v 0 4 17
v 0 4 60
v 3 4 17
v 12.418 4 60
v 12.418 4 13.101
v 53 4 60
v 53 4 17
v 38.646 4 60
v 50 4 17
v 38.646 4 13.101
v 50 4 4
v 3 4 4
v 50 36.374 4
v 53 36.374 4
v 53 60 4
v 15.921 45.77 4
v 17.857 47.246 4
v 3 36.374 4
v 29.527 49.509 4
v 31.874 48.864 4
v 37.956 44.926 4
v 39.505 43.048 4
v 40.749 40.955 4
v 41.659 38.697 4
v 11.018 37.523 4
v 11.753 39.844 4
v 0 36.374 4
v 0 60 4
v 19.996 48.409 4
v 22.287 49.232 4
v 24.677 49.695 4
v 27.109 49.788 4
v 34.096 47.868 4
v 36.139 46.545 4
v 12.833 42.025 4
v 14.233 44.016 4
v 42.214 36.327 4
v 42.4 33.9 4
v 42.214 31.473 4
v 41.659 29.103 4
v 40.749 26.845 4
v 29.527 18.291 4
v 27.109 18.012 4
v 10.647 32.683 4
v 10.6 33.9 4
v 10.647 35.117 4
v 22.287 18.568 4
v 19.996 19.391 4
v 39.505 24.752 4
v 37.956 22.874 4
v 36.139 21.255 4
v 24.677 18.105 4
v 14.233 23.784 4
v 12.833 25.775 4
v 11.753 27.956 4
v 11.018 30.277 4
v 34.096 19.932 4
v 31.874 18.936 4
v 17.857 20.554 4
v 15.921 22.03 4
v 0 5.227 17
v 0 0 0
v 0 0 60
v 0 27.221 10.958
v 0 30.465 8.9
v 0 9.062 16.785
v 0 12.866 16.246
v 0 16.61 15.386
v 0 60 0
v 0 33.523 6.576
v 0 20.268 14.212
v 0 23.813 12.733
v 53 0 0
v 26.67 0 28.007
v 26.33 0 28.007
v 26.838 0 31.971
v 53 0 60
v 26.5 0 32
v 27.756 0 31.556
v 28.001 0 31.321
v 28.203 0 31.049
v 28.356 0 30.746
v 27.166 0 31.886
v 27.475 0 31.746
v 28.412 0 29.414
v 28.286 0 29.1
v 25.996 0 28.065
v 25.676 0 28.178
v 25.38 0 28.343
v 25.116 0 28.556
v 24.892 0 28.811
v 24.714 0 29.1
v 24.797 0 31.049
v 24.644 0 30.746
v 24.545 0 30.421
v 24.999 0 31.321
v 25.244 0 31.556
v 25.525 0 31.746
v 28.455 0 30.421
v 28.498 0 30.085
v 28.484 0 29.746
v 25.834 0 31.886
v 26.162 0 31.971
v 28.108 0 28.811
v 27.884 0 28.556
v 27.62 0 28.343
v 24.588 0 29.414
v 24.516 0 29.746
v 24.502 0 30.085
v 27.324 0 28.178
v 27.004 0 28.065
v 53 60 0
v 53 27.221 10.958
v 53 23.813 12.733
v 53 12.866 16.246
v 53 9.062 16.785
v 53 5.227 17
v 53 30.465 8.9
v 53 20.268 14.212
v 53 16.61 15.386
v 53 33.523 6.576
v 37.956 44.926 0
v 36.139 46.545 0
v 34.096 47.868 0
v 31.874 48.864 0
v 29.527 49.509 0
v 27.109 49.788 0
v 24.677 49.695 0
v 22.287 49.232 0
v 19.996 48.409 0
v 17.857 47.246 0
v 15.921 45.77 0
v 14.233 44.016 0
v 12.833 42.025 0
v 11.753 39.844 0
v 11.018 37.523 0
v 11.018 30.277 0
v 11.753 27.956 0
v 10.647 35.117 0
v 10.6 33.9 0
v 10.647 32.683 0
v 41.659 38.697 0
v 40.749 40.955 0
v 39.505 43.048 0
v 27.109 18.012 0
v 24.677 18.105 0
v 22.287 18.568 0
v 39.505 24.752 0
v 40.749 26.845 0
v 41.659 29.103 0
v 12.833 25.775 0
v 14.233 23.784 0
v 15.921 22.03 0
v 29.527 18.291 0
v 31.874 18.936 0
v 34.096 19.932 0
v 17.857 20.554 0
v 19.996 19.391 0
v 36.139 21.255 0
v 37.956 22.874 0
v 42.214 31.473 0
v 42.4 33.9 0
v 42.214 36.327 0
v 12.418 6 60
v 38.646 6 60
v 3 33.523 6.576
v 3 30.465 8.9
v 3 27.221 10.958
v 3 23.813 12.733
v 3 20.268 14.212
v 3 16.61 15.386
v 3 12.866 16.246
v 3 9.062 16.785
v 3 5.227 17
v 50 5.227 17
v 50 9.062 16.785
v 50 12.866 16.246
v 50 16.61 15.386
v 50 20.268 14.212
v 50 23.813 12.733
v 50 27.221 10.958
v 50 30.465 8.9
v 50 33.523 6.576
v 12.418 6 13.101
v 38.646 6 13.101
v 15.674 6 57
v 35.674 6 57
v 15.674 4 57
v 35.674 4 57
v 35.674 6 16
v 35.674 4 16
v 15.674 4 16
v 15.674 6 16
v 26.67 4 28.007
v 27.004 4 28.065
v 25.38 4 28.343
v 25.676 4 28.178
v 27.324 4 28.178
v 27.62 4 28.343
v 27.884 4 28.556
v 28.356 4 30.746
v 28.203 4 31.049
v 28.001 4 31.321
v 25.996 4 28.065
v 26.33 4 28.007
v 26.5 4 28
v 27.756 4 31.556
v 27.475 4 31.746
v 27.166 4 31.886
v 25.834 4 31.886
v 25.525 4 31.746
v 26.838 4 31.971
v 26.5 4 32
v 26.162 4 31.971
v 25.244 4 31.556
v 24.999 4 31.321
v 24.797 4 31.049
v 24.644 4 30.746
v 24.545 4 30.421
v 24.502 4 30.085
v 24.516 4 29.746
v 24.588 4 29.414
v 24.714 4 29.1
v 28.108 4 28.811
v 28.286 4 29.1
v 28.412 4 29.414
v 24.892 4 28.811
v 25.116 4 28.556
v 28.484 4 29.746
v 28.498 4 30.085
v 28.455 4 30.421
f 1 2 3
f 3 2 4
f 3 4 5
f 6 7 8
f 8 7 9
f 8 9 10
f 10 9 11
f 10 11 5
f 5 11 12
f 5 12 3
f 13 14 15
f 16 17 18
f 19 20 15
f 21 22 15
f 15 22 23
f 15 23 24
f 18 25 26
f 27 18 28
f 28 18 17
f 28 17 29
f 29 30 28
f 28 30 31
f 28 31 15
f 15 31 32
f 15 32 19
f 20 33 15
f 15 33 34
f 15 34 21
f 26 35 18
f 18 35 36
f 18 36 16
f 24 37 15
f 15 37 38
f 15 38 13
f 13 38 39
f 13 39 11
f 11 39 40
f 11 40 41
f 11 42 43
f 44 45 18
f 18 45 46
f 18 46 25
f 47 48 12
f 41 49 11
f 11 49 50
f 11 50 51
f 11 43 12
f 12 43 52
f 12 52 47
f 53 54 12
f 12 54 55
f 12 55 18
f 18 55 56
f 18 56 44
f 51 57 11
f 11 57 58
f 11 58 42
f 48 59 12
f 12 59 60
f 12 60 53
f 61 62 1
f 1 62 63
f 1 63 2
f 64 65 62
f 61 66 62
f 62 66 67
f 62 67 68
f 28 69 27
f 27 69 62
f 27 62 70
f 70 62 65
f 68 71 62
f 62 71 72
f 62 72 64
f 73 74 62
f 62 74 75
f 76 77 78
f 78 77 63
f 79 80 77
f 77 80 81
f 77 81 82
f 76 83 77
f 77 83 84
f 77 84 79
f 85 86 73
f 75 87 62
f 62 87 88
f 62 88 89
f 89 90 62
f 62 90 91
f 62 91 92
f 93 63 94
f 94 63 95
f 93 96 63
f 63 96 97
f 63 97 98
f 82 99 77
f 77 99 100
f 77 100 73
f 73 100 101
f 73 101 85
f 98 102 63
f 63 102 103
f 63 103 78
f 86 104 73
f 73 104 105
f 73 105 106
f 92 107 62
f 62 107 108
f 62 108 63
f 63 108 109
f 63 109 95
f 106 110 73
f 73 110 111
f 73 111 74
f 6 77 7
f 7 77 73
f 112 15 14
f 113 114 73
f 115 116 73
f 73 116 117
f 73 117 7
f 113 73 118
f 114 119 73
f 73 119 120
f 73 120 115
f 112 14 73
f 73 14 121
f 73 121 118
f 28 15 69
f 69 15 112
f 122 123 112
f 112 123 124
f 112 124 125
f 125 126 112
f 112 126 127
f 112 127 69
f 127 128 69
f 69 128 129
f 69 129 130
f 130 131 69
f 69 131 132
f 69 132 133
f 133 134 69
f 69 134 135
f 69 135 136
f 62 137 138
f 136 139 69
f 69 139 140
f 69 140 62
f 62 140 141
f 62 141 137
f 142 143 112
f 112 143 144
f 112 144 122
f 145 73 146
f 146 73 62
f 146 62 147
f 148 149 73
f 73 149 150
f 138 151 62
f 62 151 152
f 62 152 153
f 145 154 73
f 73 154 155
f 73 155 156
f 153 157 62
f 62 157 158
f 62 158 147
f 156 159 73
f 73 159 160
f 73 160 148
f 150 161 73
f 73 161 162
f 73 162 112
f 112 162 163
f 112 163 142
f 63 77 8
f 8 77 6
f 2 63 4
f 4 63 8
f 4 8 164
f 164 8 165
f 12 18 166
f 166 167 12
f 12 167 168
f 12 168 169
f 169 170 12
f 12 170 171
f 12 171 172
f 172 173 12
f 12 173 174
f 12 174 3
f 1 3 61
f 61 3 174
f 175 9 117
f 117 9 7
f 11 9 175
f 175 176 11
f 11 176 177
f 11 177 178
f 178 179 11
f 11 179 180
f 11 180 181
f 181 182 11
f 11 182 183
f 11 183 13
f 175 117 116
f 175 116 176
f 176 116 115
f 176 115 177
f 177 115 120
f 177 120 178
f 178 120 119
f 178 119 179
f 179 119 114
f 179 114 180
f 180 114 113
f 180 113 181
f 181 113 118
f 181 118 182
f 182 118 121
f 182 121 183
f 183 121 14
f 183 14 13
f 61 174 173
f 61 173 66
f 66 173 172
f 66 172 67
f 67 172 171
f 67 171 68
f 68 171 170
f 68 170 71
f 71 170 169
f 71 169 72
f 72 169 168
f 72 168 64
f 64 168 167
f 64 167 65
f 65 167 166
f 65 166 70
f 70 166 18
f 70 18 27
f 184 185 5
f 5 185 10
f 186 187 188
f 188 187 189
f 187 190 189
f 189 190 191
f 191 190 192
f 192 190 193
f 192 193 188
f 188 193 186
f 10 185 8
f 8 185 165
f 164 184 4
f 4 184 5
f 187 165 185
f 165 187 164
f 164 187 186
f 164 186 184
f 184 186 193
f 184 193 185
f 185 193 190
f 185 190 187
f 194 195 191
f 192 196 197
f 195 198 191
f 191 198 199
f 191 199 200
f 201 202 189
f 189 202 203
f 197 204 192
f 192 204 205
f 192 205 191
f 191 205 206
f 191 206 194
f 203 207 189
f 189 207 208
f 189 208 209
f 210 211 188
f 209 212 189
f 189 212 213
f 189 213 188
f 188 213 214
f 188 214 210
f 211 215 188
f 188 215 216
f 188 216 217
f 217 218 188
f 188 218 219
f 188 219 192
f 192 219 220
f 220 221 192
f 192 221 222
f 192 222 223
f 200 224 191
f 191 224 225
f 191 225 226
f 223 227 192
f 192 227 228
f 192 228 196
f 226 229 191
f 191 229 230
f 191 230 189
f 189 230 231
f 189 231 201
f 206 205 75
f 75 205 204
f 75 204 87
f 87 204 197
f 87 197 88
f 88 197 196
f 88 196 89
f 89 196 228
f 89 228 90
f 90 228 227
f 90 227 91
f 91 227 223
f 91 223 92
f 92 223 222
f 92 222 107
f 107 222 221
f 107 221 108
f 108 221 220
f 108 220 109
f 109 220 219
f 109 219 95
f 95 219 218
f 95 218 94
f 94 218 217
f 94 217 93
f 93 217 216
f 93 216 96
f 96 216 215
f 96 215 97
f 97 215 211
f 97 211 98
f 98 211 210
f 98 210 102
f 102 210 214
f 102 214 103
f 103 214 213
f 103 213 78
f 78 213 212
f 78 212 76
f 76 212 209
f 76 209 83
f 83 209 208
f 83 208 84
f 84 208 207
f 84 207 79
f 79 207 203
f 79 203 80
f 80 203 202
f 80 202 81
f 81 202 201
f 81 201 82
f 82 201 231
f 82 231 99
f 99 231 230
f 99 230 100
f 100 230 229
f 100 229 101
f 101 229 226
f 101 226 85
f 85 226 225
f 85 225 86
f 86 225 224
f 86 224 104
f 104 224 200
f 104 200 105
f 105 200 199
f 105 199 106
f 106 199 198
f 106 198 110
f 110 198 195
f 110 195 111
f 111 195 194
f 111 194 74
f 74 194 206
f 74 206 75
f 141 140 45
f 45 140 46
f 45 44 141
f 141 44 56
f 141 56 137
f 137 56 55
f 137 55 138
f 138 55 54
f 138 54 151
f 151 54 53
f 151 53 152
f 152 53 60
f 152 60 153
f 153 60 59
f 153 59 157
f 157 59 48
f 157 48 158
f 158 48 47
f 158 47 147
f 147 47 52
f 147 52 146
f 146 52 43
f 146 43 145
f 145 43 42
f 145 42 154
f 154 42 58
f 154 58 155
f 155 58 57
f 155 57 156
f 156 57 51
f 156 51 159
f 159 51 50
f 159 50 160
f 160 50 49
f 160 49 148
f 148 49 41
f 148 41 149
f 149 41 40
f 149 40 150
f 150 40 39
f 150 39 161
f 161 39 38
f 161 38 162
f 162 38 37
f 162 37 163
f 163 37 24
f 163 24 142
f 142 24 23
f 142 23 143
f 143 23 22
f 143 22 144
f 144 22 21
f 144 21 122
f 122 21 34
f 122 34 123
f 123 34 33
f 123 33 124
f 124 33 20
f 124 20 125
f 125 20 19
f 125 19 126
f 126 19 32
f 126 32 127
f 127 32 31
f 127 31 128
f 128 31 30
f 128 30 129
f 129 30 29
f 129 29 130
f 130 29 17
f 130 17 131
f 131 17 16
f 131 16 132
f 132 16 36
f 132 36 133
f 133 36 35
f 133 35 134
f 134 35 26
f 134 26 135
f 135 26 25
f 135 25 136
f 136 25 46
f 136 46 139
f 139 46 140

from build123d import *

# Parameters (mm, degrees)
ESBO_O1_W                  = 53
ESBO_O1_H                  = 60
RESSALTO_EXTRUS_O1_DEPTH   = 4
ESBO_O2_W                  = 53
ESBO_O2_H                  = 4
RESSALTO_EXTRUS_O2_DEPTH   = 60
ESBO_O5_W                  = 3
ESBO_O5_H                  = 36.373853852
RESSALTO_EXTRUS_O3_DEPTH   = 17
CORTE_EXTRUS_O3_DEPTH      = 62
CORTE_EXTRUS_O3_DEPTH_BACK = 15
ESBO_O7_W                  = 26.228570329
ESBO_O7_H                  = 46.898944641
ESBO_O7_W_2                = 20
ESBO_O7_H_2                = 41
RESSALTO_EXTRUS_O4_DEPTH   = 6
CORTE_EXTRUS_O4_DEPTH      = 10
CORTE_EXTRUS_O4_DEPTH_BACK = 21
ESBO_O8_R                  = 2
CORTE_EXTRUS_O6_DEPTH      = 45
CORTE_EXTRUS_O6_DEPTH_BACK = 37
ESBO_O9_R                  = 15.9


with BuildPart() as part:
    # Esboço1 → Ressalto-extrusão1 (new body)
    with BuildSketch(Plane.XY):
        with Locations((26.5, 30)):
            Rectangle(ESBO_O1_W, ESBO_O1_H)
    extrude(amount=RESSALTO_EXTRUS_O1_DEPTH)

    # Esboço2 → Ressalto-extrusão2 (add)
    with BuildSketch(Plane.XY):
        with Locations((26.5, 2)):
            Rectangle(ESBO_O2_W, ESBO_O2_H)
    extrude(amount=RESSALTO_EXTRUS_O2_DEPTH)

    # Esboço5 → Ressalto-extrusão3 (add)
    with BuildSketch(Plane.XY):
        with Locations((1.5, 18.186926926)):
            Rectangle(ESBO_O5_W, ESBO_O5_H)
        with Locations((51.5, 18.186926926)):
            Rectangle(ESBO_O5_W, ESBO_O5_H)
    extrude(amount=RESSALTO_EXTRUS_O3_DEPTH)

    # Esboço6 → Corte-extrusão3 (cut, two sides: drawn at the far end of the back side and taken through both)
    with BuildSketch(Plane(origin=(0, 0, 0), x_dir=(0, 0, -1), z_dir=(1, 0, 0)).offset(-CORTE_EXTRUS_O3_DEPTH_BACK)):
        with BuildLine():
            ThreePointArc((-17, 5.226597996), (-13.510052949, 22.056538471), (-4, 36.373853852))
            Line((-4, 36.373853852), (-17, 36.373853852))
            Line((-17, 36.373853852), (-17, 5.226597996))
        make_face()
    extrude(amount=CORTE_EXTRUS_O3_DEPTH + CORTE_EXTRUS_O3_DEPTH_BACK, mode=Mode.SUBTRACT)

    # Esboço7 → Ressalto-extrusão4 (add)
    with BuildSketch(Plane(origin=(0, 0, 0), x_dir=(1, 0, 0), z_dir=(0, 1, 0))):
        with Locations((25.531831297, -36.55052768)):
            Rectangle(ESBO_O7_W, ESBO_O7_H)
        with Locations((25.674113589, -36.5)):
            Rectangle(ESBO_O7_W_2, ESBO_O7_H_2, mode=Mode.SUBTRACT)
    extrude(amount=RESSALTO_EXTRUS_O4_DEPTH)

    # Esboço8 → Corte-extrusão4 (cut, two sides: drawn at the far end of the back side and taken through both)
    with BuildSketch(Plane(origin=(0, 0, 0), x_dir=(1, 0, 0), z_dir=(0, 1, 0)).offset(-CORTE_EXTRUS_O4_DEPTH_BACK)):
        with Locations((26.5, -30)):
            Circle(ESBO_O8_R)
    extrude(amount=CORTE_EXTRUS_O4_DEPTH + CORTE_EXTRUS_O4_DEPTH_BACK, mode=Mode.SUBTRACT)

    # Esboço9 → Corte-extrusão6 (cut, two sides: drawn at the far end of the back side and taken through both)
    with BuildSketch(Plane.XY.offset(-CORTE_EXTRUS_O6_DEPTH_BACK)):
        with Locations((26.5, 33.9)):
            Circle(ESBO_O9_R)
    extrude(amount=CORTE_EXTRUS_O6_DEPTH + CORTE_EXTRUS_O6_DEPTH_BACK, mode=Mode.SUBTRACT)


solid = part.part
